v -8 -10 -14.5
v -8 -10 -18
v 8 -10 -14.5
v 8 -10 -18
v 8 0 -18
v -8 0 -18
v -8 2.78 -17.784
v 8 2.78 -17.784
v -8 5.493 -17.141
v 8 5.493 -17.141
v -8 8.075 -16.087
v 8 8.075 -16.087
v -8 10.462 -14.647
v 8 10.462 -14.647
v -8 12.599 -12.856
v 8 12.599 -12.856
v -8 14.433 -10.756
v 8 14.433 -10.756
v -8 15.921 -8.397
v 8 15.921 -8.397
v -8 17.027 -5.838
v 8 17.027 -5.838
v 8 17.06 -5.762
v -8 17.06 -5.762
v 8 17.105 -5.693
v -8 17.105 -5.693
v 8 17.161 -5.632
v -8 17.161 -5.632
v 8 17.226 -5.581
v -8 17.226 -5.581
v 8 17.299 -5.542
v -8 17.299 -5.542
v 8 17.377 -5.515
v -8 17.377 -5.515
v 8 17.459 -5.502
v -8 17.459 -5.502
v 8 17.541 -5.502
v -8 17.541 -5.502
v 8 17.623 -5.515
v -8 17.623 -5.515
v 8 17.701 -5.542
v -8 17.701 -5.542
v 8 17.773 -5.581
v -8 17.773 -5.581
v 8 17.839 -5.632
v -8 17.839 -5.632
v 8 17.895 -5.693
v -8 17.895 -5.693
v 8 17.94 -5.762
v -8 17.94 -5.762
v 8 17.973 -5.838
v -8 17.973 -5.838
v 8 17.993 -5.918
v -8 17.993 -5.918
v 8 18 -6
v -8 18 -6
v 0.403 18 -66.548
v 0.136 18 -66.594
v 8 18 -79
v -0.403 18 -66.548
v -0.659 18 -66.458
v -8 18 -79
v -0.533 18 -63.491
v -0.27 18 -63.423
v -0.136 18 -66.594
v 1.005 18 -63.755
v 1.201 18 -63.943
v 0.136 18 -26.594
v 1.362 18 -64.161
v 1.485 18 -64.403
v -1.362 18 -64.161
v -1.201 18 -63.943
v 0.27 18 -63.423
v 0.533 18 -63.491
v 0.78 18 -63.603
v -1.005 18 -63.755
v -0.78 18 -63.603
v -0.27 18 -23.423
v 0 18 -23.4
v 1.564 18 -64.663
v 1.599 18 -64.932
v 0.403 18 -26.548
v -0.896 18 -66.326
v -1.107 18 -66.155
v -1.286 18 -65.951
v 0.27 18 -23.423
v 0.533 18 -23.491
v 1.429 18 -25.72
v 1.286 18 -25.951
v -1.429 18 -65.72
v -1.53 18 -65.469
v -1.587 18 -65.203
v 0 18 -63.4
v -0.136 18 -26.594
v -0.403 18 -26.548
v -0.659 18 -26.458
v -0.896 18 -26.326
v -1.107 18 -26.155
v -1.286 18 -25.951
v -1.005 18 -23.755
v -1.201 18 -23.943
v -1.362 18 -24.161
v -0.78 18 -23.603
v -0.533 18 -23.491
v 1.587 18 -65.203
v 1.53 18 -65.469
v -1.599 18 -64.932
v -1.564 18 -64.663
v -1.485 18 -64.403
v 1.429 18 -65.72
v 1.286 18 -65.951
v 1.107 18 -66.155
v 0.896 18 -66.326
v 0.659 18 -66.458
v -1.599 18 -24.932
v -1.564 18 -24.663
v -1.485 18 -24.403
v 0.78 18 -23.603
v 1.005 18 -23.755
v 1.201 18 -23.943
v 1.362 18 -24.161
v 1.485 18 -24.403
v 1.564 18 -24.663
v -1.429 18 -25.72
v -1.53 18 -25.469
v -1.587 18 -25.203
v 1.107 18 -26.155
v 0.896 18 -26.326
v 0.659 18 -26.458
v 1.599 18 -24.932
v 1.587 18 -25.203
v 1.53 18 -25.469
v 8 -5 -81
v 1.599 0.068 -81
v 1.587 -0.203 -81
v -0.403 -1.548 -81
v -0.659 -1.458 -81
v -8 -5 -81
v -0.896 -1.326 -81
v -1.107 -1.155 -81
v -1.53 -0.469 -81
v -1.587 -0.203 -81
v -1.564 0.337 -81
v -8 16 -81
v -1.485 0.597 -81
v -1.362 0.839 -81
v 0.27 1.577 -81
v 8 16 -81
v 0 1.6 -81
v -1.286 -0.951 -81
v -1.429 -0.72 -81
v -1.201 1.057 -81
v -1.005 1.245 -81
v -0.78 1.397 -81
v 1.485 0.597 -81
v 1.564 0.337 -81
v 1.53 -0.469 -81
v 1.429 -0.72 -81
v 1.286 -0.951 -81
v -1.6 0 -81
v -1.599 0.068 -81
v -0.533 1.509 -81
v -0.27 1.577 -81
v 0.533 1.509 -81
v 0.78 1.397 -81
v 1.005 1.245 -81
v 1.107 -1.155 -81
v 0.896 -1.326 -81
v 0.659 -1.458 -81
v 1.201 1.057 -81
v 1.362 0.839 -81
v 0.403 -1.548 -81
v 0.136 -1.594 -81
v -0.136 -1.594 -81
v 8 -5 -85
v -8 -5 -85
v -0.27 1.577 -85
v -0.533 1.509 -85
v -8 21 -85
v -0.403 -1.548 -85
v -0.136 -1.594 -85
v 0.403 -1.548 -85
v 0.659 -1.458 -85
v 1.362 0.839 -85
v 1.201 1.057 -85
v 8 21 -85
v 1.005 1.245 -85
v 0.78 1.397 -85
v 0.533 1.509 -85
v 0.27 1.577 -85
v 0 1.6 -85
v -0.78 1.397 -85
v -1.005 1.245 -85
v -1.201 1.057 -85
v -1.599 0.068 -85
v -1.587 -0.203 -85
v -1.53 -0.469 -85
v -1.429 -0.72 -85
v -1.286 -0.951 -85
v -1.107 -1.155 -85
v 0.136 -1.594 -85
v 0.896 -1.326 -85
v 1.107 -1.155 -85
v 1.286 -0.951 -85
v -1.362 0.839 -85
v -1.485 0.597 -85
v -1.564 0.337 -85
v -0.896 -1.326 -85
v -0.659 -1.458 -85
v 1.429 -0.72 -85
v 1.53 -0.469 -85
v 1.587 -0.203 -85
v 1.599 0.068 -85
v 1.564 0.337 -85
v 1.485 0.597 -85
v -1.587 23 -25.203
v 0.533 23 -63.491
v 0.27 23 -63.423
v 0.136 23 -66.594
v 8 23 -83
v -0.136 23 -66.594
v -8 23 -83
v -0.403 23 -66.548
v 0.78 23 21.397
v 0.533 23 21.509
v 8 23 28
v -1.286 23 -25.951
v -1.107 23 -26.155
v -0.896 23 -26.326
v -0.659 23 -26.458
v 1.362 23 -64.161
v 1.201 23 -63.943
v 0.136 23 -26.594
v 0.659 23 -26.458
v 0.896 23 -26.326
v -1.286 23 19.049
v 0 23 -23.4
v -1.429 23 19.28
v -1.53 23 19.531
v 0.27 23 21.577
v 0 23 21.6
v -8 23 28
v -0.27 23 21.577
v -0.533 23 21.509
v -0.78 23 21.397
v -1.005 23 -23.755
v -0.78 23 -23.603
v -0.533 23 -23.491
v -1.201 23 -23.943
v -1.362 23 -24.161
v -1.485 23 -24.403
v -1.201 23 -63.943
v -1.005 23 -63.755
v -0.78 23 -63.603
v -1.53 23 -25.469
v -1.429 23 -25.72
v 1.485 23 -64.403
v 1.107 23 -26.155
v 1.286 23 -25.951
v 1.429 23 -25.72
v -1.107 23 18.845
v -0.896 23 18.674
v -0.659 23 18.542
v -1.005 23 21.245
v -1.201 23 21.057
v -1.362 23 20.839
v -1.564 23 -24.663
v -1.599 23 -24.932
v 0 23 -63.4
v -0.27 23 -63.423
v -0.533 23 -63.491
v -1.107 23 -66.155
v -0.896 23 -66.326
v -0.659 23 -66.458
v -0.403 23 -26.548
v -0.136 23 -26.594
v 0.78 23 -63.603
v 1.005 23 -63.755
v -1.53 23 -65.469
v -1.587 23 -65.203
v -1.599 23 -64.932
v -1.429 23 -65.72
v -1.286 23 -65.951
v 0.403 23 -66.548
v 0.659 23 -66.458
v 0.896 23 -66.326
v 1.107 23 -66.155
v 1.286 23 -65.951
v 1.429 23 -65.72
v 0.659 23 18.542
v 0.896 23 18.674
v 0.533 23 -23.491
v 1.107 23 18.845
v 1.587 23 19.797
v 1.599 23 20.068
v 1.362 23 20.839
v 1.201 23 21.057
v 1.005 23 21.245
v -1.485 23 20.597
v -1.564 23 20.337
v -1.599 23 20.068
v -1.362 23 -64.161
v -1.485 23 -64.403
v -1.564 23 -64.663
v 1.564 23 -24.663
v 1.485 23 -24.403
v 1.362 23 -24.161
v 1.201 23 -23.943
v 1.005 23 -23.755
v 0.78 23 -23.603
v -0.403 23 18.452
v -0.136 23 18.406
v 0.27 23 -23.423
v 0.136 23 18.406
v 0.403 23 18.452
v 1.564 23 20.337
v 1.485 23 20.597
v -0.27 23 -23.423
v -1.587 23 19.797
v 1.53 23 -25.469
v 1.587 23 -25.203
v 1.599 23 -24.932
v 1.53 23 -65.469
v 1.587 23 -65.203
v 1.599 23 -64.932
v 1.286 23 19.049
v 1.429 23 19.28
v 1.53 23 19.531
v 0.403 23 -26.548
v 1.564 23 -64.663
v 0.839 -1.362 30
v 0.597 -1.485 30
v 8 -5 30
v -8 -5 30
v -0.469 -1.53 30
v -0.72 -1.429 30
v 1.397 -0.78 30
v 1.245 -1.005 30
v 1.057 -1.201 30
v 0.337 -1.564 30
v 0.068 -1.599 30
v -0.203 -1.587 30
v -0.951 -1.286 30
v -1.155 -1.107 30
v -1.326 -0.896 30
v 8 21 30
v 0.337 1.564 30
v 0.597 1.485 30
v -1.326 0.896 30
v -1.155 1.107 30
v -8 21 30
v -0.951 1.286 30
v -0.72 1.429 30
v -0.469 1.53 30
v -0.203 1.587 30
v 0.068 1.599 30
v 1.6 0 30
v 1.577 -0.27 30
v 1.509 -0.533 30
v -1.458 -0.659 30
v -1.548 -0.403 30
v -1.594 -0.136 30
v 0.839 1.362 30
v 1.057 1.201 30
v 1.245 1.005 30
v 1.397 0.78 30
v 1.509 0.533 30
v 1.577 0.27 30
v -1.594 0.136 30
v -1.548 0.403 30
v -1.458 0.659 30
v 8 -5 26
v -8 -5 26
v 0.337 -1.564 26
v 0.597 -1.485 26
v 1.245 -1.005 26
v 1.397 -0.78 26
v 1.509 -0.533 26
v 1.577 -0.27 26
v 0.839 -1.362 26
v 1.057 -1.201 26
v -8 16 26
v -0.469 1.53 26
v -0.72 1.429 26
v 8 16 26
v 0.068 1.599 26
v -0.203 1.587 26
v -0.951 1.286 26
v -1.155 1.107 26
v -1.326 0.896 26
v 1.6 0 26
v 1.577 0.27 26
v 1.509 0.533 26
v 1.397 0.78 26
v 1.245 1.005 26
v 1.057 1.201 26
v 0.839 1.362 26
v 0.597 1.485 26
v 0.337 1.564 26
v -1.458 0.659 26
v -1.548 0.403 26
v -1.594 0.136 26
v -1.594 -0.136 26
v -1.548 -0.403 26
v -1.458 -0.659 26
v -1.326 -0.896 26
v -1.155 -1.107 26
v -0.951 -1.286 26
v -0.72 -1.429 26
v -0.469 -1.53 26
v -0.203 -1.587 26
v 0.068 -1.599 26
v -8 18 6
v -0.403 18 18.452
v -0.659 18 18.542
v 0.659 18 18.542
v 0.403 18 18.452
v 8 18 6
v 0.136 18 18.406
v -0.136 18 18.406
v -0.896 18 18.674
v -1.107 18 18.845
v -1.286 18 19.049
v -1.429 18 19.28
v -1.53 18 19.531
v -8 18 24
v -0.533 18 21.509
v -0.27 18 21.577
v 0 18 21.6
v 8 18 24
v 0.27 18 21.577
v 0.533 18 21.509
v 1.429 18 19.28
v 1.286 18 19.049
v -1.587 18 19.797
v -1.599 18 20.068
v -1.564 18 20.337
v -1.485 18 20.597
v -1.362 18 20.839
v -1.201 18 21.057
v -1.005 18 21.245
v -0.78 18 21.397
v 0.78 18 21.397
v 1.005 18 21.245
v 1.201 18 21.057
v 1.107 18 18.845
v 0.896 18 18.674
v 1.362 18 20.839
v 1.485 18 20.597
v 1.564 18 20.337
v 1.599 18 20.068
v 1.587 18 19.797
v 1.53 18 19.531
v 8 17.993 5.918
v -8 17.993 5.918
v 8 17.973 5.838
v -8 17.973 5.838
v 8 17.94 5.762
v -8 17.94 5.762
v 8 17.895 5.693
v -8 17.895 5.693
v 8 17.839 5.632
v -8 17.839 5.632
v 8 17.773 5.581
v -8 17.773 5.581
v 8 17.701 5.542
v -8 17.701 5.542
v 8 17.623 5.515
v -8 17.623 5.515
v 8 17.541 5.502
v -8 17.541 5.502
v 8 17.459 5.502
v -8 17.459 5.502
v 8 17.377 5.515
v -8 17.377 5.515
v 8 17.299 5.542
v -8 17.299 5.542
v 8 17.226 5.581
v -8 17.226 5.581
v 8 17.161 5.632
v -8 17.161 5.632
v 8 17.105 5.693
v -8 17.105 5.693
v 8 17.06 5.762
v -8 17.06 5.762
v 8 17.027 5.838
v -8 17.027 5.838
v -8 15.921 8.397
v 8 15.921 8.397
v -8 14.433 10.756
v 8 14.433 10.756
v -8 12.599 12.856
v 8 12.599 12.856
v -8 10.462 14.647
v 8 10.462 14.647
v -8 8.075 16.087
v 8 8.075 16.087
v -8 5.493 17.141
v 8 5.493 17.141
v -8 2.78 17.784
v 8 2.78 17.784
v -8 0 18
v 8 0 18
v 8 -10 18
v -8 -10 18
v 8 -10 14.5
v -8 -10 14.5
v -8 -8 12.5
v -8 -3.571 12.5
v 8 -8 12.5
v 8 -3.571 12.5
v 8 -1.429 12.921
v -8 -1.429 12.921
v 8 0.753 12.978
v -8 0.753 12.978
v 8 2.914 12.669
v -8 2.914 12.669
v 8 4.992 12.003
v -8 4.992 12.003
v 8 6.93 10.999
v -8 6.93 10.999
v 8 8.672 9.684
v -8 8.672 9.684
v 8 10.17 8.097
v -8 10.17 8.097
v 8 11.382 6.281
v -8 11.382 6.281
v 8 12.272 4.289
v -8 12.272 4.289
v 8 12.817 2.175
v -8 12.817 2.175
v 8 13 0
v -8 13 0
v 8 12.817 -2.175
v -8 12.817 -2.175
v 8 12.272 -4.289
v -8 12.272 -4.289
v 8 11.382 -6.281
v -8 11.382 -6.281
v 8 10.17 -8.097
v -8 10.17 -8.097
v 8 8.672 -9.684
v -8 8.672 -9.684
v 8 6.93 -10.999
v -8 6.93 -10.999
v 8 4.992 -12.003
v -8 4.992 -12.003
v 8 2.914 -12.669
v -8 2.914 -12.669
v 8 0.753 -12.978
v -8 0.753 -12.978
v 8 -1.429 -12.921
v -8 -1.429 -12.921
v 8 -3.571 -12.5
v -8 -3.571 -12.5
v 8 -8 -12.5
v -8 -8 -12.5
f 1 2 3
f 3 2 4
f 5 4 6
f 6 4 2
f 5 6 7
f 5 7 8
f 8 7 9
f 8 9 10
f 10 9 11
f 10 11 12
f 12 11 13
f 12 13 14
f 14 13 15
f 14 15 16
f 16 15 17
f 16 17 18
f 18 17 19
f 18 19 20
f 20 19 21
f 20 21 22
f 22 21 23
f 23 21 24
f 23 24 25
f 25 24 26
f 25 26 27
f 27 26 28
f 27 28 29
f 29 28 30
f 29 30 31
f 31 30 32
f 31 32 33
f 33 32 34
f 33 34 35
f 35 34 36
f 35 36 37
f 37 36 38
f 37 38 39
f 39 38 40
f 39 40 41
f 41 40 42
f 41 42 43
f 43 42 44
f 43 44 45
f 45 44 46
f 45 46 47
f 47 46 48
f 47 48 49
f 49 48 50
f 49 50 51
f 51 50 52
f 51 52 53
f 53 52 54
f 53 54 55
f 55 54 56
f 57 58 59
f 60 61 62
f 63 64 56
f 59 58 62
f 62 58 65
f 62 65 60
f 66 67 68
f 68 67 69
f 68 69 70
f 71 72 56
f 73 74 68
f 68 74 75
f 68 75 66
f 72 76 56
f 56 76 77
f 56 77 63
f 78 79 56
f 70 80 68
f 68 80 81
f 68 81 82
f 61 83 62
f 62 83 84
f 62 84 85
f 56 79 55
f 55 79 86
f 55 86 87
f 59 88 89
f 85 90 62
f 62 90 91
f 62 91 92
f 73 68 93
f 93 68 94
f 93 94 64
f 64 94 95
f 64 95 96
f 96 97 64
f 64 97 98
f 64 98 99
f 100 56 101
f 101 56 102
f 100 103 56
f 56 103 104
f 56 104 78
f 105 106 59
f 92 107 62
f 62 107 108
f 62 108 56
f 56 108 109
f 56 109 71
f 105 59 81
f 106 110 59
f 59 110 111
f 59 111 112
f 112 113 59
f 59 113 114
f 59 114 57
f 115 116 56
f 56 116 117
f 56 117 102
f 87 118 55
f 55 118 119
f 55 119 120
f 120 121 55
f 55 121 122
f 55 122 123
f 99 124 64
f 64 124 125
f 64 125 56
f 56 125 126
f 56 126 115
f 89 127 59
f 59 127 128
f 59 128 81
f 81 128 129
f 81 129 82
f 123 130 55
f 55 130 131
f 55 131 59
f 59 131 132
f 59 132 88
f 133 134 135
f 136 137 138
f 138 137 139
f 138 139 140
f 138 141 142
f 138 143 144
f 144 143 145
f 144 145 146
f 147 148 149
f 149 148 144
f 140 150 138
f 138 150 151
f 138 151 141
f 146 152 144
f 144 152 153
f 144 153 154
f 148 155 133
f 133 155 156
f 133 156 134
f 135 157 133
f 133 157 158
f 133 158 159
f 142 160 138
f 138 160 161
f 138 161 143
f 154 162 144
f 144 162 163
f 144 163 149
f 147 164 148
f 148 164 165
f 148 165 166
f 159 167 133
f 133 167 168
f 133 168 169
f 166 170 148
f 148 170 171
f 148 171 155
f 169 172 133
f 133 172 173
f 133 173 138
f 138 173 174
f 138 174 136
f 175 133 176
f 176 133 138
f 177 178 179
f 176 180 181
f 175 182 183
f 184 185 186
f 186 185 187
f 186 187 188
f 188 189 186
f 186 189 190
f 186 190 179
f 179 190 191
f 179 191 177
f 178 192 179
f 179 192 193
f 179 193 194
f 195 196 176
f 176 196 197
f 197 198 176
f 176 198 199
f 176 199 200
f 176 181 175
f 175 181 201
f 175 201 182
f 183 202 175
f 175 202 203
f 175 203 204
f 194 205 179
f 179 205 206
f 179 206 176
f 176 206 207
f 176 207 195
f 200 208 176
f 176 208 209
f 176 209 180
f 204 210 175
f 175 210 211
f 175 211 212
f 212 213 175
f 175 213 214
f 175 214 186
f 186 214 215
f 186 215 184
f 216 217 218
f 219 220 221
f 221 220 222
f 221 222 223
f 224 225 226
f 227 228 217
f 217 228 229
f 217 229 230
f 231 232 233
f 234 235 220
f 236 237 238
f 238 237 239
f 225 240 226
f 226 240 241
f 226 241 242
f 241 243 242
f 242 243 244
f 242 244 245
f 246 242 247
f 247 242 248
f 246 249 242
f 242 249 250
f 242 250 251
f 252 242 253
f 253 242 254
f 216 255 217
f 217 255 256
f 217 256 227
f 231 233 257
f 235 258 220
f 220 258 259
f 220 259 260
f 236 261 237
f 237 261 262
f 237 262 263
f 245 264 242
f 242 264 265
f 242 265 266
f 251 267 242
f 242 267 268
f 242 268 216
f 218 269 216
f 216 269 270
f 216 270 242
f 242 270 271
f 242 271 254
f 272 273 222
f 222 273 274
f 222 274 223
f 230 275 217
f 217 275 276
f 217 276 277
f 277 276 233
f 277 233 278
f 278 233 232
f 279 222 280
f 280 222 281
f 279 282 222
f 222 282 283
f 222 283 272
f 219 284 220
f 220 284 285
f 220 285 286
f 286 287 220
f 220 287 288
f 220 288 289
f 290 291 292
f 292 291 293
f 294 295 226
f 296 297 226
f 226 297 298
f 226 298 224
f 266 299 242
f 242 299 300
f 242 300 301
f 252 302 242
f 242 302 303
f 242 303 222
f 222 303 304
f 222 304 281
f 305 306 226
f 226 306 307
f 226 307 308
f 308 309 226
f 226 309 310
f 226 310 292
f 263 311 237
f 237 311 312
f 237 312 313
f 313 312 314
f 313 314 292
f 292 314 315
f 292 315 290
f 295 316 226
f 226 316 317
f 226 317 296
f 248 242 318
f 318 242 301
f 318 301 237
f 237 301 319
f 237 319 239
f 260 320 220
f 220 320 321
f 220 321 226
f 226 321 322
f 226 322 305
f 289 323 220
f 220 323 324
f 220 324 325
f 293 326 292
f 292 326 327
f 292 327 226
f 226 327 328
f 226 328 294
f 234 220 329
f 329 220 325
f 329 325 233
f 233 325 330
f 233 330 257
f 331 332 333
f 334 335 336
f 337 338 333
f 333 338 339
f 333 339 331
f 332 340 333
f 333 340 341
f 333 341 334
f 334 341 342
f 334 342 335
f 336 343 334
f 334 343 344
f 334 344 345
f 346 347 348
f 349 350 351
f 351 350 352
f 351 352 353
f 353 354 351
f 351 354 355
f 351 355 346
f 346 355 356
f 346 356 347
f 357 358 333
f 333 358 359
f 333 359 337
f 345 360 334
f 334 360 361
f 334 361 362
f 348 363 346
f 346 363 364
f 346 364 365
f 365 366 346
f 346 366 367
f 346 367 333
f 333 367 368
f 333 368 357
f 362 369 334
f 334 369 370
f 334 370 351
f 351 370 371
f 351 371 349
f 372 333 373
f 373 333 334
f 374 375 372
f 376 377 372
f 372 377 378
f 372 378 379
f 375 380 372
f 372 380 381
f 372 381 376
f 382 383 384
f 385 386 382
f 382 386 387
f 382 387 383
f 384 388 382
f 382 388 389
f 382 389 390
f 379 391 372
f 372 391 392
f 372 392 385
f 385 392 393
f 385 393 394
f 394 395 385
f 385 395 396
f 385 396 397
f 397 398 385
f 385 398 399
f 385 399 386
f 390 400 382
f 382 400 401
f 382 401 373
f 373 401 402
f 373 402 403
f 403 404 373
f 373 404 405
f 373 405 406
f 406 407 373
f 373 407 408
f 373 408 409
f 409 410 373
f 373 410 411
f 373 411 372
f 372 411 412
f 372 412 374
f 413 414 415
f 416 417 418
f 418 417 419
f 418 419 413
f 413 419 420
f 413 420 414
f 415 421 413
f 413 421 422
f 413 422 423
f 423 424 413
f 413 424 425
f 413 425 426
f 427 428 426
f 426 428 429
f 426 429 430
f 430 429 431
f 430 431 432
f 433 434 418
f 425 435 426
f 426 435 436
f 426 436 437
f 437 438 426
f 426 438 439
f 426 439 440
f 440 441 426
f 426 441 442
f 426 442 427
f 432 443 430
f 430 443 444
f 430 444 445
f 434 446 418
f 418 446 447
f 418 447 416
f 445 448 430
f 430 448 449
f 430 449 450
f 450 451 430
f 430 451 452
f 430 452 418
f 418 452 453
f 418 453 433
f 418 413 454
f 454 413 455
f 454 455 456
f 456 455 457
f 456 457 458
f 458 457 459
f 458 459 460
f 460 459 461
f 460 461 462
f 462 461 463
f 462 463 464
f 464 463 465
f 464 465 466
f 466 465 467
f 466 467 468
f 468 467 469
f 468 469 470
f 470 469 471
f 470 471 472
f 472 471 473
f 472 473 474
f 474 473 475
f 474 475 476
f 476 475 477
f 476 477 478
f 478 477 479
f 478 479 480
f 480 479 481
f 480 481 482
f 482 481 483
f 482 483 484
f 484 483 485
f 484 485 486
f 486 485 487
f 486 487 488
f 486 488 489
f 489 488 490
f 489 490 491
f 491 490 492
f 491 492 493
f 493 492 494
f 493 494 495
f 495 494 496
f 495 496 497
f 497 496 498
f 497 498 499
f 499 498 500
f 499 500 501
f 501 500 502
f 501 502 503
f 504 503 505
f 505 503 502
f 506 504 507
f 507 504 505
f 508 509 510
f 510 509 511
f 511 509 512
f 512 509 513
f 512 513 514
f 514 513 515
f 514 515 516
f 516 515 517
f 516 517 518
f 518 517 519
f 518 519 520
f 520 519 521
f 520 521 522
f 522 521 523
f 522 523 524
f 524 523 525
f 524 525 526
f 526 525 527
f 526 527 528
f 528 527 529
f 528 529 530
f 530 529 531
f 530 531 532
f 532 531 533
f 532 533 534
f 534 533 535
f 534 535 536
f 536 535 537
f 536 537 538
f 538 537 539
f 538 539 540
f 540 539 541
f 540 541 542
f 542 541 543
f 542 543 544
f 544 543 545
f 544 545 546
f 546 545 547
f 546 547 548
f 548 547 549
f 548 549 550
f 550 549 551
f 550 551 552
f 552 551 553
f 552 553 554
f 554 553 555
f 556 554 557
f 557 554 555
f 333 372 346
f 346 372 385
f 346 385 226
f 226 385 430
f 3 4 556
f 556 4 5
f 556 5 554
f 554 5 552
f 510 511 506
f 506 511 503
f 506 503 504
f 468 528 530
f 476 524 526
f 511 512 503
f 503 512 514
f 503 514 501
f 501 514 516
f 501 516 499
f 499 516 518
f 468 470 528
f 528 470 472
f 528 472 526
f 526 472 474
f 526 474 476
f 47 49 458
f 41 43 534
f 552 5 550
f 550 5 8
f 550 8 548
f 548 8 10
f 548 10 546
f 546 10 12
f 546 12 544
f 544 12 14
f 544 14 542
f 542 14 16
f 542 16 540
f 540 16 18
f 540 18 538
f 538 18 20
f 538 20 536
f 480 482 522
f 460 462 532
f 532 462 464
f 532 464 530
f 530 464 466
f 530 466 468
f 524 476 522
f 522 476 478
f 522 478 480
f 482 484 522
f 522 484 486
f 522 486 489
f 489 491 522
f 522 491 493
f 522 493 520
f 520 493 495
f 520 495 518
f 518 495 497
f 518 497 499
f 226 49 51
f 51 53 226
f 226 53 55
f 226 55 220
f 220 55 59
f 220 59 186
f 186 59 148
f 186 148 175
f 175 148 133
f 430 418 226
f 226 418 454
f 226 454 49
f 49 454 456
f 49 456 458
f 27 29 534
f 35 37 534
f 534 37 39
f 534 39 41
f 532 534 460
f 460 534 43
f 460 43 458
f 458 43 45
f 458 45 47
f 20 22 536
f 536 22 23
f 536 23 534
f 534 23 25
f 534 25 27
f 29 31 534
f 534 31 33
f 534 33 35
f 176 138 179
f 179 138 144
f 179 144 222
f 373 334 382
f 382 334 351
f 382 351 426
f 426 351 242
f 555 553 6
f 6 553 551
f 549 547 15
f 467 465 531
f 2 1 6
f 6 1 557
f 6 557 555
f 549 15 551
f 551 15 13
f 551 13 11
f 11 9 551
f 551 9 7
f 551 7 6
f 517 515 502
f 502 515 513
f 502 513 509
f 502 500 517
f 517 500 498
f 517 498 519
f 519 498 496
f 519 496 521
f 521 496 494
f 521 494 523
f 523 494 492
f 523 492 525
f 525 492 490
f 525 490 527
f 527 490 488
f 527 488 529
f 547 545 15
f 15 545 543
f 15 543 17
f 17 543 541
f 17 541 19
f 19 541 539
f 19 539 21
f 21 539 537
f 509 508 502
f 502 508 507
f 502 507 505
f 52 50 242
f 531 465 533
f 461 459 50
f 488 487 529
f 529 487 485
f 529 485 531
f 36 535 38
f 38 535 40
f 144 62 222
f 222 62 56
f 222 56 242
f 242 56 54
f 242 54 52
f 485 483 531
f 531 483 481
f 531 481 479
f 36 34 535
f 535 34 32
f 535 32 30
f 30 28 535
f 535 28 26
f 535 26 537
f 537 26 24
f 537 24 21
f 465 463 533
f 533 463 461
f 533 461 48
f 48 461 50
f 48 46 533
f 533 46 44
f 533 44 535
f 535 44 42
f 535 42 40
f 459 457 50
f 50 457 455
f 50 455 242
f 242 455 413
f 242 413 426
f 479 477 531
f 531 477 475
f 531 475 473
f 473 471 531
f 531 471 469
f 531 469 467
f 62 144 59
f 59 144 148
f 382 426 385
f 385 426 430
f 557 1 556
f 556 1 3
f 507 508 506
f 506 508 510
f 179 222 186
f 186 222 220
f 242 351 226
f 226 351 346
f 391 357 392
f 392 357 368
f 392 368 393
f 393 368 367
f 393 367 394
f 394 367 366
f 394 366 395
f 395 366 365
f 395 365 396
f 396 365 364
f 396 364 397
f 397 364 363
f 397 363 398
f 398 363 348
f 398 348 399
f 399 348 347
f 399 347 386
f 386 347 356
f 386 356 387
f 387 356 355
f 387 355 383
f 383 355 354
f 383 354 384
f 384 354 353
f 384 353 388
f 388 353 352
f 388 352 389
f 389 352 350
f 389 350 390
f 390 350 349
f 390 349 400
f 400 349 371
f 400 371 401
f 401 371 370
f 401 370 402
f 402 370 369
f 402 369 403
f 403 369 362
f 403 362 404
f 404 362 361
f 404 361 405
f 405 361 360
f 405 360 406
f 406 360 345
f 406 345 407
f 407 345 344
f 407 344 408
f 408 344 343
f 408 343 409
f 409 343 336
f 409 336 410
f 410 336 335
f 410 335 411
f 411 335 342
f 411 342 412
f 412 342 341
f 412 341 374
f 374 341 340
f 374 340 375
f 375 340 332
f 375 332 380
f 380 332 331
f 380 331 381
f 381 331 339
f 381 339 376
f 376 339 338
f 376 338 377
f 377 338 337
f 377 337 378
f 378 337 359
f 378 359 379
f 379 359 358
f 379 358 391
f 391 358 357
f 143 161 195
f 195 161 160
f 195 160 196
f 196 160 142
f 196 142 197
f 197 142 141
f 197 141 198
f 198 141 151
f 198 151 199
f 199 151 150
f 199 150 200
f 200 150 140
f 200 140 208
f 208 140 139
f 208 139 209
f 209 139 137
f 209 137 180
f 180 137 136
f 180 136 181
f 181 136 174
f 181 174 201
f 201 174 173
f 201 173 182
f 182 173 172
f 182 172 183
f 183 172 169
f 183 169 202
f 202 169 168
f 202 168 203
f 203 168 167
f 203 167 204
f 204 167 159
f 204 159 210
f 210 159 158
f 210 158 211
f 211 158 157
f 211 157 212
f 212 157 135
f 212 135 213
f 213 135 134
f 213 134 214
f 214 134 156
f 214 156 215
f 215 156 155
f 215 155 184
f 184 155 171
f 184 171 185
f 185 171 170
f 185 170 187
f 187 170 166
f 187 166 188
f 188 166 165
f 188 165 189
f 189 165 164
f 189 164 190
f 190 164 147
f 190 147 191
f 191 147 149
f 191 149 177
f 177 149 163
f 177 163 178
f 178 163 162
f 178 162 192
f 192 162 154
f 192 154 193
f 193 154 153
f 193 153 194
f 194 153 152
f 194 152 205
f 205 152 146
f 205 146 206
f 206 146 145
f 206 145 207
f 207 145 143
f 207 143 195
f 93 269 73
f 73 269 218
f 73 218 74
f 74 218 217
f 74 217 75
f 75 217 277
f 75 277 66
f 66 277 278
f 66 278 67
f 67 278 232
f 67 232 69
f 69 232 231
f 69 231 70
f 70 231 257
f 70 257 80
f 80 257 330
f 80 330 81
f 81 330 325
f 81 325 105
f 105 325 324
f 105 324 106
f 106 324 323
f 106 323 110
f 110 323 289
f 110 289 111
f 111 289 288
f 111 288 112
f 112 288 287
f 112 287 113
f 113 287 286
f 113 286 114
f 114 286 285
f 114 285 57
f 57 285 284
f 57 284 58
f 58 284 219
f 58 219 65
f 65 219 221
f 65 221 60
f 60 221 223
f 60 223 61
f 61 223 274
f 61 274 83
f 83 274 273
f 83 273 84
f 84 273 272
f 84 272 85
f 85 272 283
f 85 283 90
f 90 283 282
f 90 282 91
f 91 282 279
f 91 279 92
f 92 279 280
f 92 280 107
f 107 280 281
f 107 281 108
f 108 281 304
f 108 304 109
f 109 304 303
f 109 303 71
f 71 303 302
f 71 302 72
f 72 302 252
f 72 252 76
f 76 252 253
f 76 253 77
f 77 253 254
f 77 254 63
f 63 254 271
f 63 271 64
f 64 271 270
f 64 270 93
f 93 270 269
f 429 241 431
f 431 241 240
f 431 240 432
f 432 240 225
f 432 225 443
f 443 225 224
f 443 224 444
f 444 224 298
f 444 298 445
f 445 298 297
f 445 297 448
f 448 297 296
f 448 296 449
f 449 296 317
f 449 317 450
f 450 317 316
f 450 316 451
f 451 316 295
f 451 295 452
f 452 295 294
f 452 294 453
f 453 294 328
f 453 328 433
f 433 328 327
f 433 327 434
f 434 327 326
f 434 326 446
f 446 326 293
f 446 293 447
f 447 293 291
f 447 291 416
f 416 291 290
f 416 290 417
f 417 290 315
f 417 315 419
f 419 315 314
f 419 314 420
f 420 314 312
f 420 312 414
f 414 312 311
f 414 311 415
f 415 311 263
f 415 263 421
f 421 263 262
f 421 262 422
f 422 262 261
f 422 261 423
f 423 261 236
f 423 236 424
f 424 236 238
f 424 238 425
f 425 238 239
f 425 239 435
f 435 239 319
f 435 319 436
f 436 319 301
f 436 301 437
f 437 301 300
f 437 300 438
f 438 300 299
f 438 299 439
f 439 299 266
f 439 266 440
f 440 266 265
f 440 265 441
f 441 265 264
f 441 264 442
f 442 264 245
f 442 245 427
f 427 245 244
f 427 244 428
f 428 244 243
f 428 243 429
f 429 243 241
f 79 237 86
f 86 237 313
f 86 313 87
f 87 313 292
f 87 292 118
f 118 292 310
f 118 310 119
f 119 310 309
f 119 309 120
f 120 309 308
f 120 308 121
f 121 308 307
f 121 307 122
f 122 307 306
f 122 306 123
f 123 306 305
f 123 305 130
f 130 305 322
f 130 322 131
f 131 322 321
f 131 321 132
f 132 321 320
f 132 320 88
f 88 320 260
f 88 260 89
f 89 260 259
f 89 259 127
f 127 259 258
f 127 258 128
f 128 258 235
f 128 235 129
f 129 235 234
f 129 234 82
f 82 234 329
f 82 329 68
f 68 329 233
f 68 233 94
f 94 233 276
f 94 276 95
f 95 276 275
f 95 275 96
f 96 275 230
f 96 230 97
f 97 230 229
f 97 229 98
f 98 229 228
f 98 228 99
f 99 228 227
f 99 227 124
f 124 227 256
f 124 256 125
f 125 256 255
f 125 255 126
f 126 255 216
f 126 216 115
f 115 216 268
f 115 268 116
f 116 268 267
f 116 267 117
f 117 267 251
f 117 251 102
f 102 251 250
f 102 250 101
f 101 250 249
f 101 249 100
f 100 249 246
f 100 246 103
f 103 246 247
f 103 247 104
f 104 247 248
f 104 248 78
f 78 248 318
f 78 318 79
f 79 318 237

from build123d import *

# Parameters (mm, degrees)
BOSS_EXTRUDE1_DEPTH = 8
CHAMFER1_SIZE       = 2
CHAMFER2_SIZE       = 2
CUT_EXTRUDE1_REACH  = 119.55
SKETCH2_R           = 1.6
CUT_EXTRUDE2_REACH  = 119.55
SKETCH3_R           = 1.6
CUT_EXTRUDE3_REACH  = 93.531
SKETCH4_R           = 1.6


with BuildPart() as part:
    # Sketch1 → Boss-Extrude1 (new, symmetric)
    with BuildSketch(Plane(origin=(0, 0, 0), x_dir=(0, 0, -1), z_dir=(1, 0, 0))):
        with BuildLine():
            Line((-12.5, -3.570714214), (-12.5, -10))
            Line((-12.5, -10), (-18, -10))
            Line((-18, -10), (-18, 0))
            ThreePointArc((-18, 0), (-14.647202482, 10.462287487), (-5.837837838, 17.027027027))
            ThreePointArc((-5.837837838, 17.027027027), (-5.506803038, 17.582199494), (-6, 18))
            Line((-6, 18), (-26, 18))
            Line((-26, 18), (-26, -5))
            Line((-26, -5), (-30, -5))
            Line((-30, -5), (-30, 18))
            Line((-30, 18), (-30, 23))
            Line((-30, 23), (85, 23))
            Line((85, 23), (85, 18))
            Line((85, 18), (85, -5))
            Line((85, -5), (81, -5))
            Line((81, -5), (81, 18))
            Line((81, 18), (6, 18))
            ThreePointArc((6, 18), (5.506803038, 17.582199494), (5.837837838, 17.027027027))
            ThreePointArc((5.837837838, 17.027027027), (14.647202482, 10.462287487), (18, 0))
            Line((18, 0), (18, -10))
            Line((18, -10), (12.5, -10))
            Line((12.5, -10), (12.5, -3.570714214))
            ThreePointArc((12.5, -3.570714214), (0, 13), (-12.5, -3.570714214))
        make_face()
    extrude(amount=BOSS_EXTRUDE1_DEPTH, both=True)

    # Chamfer1
    chamfer1_edges = [part.edges().sort_by_distance(p)[0] for p in [
        (0, 18, 26),
        (0, 18, -81),
    ]]
    chamfer(chamfer1_edges, length=CHAMFER1_SIZE)

    # Chamfer2
    chamfer2_edges = [part.edges().sort_by_distance(p)[0] for p in [
        (0, -10, -12.5),
        (0, -10, 12.5),
        (0, 23, 30),
        (0, 23, -85),
    ]]
    chamfer(chamfer2_edges, length=CHAMFER2_SIZE)

    # Sketch2 → Cut-Extrude1 (cut, up to next)
    with BuildSketch(Plane.XY.offset(30), mode=Mode.PRIVATE) as cut_extrude1_sk1:
        Circle(SKETCH2_R)
    cut_extrude1_tool1 = extrude(cut_extrude1_sk1.sketch, amount=-CUT_EXTRUDE1_REACH, mode=Mode.PRIVATE) & part.part
    add(cut_extrude1_tool1.solids().sort_by_distance((0, 0, 30))[0], mode=Mode.SUBTRACT)

    # Sketch3 → Cut-Extrude2 (cut, up to next)
    with BuildSketch(Plane(origin=(0, 0, -85), x_dir=(-1, 0, 0), z_dir=(0, 0, -1)), mode=Mode.PRIVATE) as cut_extrude2_sk1:
        with Locations(Location((0, 0, 0), (0, 0, 180))):
            Circle(SKETCH3_R)
    cut_extrude2_tool1 = extrude(cut_extrude2_sk1.sketch, amount=-CUT_EXTRUDE2_REACH, mode=Mode.PRIVATE) & part.part
    add(cut_extrude2_tool1.solids().sort_by_distance((0, 0, -85))[0], mode=Mode.SUBTRACT)

    # Sketch4 → Cut-Extrude3 (cut, up to next)
    with BuildSketch(Plane(origin=(0, 23, 0), x_dir=(1, 0, 0), z_dir=(0, 1, 0)), mode=Mode.PRIVATE) as cut_extrude3_sk1:
        with Locations(Location((0, 65, 0), (0, 0, 270))):
            Circle(SKETCH4_R)
    cut_extrude3_tool1 = extrude(cut_extrude3_sk1.sketch, amount=-CUT_EXTRUDE3_REACH, mode=Mode.PRIVATE) & part.part
    # Sketch4 → Cut-Extrude3 (cut, up to next)
    with BuildSketch(Plane(origin=(0, 23, 0), x_dir=(1, 0, 0), z_dir=(0, 1, 0)), mode=Mode.PRIVATE) as cut_extrude3_sk2:
        with Locations(Location((0, 25, 0), (0, 0, 270))):
            Circle(SKETCH4_R)
    cut_extrude3_tool2 = extrude(cut_extrude3_sk2.sketch, amount=-CUT_EXTRUDE3_REACH, mode=Mode.PRIVATE) & part.part
    # Sketch4 → Cut-Extrude3 (cut, up to next)
    with BuildSketch(Plane(origin=(0, 23, 0), x_dir=(1, 0, 0), z_dir=(0, 1, 0)), mode=Mode.PRIVATE) as cut_extrude3_sk3:
        with Locations(Location((0, -20, 0), (0, 0, 270))):
            Circle(SKETCH4_R)
    cut_extrude3_tool3 = extrude(cut_extrude3_sk3.sketch, amount=-CUT_EXTRUDE3_REACH, mode=Mode.PRIVATE) & part.part
    add(cut_extrude3_tool1.solids().sort_by_distance((0, 23, -65))[0], mode=Mode.SUBTRACT)
    add(cut_extrude3_tool2.solids().sort_by_distance((0, 23, -25))[0], mode=Mode.SUBTRACT)
    add(cut_extrude3_tool3.solids().sort_by_distance((0, 23, 20))[0], mode=Mode.SUBTRACT)


solid = part.part
